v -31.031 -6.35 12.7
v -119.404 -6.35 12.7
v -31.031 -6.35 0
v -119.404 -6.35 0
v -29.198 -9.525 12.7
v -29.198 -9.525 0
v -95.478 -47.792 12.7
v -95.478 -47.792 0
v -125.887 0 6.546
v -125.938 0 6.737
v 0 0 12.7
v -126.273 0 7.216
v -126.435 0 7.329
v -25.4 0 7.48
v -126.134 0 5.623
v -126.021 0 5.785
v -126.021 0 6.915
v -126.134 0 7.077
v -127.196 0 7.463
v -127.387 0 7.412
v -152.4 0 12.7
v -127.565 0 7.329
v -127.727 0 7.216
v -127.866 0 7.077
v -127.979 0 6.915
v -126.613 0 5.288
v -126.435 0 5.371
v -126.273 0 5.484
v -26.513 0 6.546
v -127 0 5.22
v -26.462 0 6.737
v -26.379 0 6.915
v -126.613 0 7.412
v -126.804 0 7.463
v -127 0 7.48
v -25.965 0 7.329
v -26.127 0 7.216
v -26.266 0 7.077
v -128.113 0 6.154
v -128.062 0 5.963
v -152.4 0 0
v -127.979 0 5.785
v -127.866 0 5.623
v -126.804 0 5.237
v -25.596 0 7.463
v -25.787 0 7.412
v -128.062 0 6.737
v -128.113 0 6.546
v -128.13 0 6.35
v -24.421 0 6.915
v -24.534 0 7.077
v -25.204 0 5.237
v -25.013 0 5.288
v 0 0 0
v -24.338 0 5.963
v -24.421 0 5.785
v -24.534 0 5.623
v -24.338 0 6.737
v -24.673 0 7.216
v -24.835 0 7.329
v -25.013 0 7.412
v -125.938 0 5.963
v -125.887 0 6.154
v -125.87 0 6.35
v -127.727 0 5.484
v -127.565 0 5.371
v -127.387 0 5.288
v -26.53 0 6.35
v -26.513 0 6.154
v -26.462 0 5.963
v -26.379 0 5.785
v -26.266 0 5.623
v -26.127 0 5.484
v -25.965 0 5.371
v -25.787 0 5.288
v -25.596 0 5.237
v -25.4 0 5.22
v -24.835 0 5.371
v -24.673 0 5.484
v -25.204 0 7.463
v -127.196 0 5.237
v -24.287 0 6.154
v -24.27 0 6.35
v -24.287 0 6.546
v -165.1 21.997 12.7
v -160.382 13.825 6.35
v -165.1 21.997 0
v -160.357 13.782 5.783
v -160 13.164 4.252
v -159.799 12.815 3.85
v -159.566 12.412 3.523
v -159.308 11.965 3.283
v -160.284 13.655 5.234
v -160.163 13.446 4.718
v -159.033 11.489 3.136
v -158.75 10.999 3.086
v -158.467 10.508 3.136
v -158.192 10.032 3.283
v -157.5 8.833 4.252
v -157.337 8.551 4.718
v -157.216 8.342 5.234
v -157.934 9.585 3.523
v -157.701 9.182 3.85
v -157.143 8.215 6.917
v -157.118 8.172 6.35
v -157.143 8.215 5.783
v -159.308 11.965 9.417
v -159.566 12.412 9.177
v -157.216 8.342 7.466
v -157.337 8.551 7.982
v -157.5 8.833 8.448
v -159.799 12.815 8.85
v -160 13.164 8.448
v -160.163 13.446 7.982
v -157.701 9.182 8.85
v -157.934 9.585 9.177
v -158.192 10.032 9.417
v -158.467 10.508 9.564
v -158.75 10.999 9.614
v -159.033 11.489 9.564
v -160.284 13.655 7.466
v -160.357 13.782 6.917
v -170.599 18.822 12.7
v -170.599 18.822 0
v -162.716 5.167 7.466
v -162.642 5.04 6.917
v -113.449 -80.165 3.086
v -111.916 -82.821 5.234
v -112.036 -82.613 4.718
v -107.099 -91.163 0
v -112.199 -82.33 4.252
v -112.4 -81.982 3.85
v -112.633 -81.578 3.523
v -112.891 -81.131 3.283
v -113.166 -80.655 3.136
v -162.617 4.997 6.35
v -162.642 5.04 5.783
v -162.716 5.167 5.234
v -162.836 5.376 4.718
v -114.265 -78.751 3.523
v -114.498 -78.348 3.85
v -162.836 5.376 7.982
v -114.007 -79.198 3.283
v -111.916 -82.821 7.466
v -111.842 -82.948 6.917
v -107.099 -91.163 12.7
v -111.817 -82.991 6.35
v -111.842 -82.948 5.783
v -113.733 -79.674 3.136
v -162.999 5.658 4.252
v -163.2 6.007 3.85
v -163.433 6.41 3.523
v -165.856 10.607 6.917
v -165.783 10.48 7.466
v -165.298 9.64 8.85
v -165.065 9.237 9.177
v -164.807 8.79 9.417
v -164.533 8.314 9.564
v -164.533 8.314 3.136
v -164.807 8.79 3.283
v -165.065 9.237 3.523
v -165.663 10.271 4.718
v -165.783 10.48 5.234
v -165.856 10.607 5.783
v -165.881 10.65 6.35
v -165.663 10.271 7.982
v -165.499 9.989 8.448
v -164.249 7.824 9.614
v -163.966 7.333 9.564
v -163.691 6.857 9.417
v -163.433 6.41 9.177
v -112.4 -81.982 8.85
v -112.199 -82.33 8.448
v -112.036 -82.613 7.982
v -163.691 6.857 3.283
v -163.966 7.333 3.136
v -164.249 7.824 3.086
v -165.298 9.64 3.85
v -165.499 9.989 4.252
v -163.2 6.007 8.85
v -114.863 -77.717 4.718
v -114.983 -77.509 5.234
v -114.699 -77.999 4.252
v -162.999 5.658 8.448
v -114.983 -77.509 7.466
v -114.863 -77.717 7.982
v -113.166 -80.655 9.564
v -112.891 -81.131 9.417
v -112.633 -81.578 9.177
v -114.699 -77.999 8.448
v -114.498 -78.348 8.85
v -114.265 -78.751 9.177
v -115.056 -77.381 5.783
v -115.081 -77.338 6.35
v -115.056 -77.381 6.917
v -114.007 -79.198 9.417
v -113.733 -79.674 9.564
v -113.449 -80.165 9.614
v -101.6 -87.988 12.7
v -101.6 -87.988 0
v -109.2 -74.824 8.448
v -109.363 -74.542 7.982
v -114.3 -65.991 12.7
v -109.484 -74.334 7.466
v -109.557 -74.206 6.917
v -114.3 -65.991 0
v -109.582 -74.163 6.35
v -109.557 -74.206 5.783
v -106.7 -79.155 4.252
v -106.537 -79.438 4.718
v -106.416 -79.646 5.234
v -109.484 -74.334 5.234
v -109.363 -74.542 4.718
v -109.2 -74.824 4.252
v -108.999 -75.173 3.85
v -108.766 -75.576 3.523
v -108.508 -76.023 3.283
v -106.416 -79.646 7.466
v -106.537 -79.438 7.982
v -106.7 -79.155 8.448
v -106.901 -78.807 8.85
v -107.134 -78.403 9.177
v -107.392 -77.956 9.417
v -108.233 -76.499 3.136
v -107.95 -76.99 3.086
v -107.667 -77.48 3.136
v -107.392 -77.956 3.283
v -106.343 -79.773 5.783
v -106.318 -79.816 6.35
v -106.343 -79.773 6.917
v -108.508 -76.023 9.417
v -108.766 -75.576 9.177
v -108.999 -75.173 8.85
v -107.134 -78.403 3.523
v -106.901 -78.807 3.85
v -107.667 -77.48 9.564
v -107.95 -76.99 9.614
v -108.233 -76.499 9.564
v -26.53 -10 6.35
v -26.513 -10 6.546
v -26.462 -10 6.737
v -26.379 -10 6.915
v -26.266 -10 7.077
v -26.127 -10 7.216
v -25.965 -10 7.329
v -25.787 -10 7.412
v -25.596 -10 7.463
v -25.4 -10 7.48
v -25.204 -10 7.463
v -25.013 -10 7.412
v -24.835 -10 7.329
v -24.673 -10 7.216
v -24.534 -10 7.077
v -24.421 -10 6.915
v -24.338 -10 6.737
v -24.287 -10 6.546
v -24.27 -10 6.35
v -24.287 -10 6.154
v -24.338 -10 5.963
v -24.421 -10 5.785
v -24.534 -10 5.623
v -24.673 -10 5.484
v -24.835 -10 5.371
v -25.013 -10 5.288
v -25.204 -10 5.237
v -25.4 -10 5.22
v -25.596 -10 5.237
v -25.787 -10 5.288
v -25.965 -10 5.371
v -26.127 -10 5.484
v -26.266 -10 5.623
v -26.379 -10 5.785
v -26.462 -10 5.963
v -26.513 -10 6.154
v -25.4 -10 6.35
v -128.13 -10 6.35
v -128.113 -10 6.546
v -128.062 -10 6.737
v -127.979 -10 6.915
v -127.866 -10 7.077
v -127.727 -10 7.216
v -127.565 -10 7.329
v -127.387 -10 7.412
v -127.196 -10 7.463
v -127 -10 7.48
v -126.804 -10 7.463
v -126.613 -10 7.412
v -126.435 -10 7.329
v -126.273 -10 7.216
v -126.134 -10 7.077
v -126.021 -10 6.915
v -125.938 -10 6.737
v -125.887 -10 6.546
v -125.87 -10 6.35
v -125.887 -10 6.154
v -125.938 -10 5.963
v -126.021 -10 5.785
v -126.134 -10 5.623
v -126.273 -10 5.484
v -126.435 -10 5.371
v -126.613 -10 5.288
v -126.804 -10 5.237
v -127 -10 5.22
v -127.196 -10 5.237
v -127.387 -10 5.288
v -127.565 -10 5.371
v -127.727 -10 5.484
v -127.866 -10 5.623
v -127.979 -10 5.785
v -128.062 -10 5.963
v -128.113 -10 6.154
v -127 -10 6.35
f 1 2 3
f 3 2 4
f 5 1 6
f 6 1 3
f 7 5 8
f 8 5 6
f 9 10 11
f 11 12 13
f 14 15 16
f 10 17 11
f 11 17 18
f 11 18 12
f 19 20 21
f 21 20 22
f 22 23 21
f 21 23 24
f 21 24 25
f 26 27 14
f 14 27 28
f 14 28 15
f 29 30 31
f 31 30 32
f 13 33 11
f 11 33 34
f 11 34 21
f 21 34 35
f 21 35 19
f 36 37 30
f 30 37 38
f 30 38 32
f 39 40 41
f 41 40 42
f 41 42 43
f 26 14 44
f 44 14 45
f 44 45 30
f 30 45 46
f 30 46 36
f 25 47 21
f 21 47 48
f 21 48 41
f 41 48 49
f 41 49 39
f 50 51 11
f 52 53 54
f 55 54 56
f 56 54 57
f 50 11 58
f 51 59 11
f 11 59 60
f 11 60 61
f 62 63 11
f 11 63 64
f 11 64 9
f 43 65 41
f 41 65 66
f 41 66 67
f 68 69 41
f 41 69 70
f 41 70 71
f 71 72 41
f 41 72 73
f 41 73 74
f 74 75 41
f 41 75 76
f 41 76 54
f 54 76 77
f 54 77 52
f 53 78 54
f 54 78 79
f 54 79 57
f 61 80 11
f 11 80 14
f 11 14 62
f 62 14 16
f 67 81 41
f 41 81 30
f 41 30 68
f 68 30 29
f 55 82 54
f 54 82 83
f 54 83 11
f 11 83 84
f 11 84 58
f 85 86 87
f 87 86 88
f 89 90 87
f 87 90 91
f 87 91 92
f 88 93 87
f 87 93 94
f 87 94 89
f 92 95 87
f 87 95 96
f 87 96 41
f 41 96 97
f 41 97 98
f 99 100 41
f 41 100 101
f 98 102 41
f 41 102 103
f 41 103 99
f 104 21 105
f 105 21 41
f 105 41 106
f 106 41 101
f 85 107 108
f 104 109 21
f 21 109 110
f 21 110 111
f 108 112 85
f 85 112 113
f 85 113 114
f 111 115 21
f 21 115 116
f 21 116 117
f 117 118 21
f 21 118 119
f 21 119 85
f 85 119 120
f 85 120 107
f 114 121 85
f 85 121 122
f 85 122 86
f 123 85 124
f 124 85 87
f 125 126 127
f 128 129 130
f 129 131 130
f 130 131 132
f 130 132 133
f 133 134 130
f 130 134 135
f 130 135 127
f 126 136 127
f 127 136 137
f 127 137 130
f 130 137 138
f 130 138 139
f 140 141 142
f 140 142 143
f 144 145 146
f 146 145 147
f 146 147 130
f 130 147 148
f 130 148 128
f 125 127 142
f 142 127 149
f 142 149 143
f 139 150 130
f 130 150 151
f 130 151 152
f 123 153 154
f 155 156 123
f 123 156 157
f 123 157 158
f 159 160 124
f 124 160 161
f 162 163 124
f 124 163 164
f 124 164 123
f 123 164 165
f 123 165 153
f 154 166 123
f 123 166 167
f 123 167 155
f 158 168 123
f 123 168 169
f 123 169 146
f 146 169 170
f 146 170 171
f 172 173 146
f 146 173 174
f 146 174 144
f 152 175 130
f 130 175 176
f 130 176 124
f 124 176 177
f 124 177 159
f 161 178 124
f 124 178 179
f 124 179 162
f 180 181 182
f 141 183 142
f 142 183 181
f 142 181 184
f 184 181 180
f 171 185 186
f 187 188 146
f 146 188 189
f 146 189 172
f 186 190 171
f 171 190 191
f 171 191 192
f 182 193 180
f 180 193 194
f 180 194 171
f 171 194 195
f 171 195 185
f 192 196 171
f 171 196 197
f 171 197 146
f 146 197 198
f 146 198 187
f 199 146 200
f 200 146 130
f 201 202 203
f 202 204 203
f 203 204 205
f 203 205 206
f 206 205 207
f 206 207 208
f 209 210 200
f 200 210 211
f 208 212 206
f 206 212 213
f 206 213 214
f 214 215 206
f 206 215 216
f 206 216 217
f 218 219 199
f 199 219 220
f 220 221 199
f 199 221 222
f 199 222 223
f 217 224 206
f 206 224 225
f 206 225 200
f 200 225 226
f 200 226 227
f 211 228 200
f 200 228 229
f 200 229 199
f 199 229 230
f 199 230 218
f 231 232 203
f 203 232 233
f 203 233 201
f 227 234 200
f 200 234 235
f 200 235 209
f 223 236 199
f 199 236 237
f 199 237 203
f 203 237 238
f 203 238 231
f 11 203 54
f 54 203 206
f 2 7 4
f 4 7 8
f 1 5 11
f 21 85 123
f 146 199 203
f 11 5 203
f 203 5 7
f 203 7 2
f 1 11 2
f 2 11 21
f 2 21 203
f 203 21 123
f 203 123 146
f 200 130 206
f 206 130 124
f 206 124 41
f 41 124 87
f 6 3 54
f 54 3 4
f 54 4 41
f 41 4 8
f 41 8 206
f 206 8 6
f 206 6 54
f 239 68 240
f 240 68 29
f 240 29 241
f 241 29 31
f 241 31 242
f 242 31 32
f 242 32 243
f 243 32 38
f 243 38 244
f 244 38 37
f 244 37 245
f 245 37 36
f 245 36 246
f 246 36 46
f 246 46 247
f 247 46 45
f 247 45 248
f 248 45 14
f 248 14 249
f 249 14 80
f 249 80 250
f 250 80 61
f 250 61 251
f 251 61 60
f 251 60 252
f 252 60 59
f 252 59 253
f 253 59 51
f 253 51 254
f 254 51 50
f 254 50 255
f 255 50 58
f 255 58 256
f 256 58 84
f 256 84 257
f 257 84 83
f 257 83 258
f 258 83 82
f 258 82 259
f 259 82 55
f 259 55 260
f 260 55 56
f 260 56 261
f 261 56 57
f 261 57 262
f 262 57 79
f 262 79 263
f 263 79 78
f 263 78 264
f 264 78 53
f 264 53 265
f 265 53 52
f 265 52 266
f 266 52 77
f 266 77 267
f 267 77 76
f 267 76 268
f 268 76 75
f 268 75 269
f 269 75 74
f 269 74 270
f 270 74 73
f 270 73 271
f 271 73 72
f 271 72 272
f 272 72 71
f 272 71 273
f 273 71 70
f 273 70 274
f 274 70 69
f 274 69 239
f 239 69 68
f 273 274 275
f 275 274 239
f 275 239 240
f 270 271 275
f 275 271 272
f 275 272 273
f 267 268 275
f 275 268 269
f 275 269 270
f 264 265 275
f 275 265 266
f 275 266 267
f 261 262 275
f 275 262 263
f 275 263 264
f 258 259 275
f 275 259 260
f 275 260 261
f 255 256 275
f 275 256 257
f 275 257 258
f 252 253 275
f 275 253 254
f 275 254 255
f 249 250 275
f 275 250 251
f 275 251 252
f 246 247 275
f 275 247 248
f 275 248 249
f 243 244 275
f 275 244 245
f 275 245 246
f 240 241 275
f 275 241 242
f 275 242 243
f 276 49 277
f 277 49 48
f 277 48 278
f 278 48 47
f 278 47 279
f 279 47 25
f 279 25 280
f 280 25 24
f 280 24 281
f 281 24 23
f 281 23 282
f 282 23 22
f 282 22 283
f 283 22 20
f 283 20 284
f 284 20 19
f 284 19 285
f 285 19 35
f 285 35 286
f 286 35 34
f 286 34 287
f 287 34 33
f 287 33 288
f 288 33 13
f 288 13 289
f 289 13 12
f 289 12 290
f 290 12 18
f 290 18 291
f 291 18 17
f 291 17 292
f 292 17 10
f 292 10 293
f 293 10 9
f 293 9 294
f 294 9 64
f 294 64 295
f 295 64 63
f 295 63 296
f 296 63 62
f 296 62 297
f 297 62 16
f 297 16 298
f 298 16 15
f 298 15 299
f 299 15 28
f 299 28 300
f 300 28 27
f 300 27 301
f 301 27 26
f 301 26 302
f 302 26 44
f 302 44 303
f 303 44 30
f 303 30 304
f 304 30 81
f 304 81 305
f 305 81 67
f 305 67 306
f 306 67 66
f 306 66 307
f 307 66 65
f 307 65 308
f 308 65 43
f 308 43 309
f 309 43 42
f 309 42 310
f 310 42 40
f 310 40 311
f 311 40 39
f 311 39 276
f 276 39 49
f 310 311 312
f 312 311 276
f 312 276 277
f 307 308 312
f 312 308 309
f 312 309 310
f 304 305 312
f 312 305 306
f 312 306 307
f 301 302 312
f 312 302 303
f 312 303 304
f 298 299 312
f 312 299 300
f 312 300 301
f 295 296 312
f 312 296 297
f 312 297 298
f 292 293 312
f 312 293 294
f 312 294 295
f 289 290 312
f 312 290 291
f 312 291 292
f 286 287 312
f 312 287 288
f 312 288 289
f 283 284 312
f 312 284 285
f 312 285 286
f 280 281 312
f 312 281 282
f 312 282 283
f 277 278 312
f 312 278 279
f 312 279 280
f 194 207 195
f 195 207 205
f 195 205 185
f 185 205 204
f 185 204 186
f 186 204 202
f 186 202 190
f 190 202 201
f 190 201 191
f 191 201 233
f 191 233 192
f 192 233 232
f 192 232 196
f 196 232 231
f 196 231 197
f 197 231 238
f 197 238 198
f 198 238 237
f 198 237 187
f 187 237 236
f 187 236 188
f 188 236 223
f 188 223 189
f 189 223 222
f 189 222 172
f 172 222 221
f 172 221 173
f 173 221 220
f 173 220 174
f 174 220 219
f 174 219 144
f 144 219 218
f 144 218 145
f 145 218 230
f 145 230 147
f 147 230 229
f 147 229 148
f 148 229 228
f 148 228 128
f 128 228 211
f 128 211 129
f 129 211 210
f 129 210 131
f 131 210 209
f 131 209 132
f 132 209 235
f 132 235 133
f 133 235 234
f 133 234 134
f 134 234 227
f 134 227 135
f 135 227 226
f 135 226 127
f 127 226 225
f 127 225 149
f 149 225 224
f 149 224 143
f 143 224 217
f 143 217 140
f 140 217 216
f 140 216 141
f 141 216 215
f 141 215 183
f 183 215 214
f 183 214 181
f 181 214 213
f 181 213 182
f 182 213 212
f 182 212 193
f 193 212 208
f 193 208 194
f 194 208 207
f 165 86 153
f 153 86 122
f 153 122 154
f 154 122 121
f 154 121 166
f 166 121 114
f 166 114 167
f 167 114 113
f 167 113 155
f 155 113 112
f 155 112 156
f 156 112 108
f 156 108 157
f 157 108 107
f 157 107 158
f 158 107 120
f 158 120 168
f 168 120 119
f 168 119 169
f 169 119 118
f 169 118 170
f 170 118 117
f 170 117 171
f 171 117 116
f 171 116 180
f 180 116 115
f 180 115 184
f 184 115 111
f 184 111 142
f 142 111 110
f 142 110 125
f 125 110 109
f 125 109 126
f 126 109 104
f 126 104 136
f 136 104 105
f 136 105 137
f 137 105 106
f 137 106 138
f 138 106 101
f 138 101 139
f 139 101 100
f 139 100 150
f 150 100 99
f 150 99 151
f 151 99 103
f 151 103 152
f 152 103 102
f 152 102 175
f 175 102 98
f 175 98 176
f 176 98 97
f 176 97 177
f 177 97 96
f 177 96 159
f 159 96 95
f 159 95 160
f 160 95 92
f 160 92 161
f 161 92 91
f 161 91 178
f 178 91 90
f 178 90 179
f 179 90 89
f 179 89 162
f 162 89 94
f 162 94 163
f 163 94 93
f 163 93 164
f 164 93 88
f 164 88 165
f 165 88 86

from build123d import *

# Parameters (mm, degrees)
BOSS_EXTRUDE1_DEPTH = 12.7
SKETCH2_R           = 1.1303
CUT_EXTRUDE1_DEPTH  = 10
SKETCH3_R           = 3.2639
CUT_EXTRUDE2_DEPTH  = 10


with BuildPart() as part:
    # Sketch1 → Boss-Extrude1 (new body)
    # profile 1 of 4: a face of its own
    with BuildSketch(Plane.XY):
        Polygon((-152.4, 0), (0, 0), (-114.3, -65.991135768), align=None)
        Polygon((-119.404432116, -6.35), (-31.030871047, -6.35), (-29.197783942, -9.525), (-95.477954744, -47.791874454), align=None, mode=Mode.SUBTRACT)
    # profile 2 of 4: a face of its own
    with BuildSketch(Plane.XY):
        Polygon((-165.1, 21.997045256), (-170.599261314, 18.822045256), (-157.899261314, -3.175), (-152.4, 0), align=None)
    # profile 3 of 4: a face of its own
    with BuildSketch(Plane.XY):
        Polygon((-157.899261314, -3.175), (-119.799261314, -69.166135768), (-114.3, -65.991135768), (-152.4, 0), align=None)
    # profile 4 of 4: a face of its own
    with BuildSketch(Plane.XY):
        Polygon((-107.099261314, -91.163181024), (-119.799261314, -69.166135768), (-114.3, -65.991135768), (-101.6, -87.988181024), align=None)
    extrude(amount=BOSS_EXTRUDE1_DEPTH)

    # Sketch2 → Cut-Extrude1 (cut)
    with BuildSketch(Plane(origin=(0, 0, 0), x_dir=(1, 0, 0), z_dir=(0, 1, 0))):
        with Locations(Location((-127, -6.35, 0), (0, 0, 180))):
            Circle(SKETCH2_R)
        with Locations(Location((-25.4, -6.35, 0), (0, 0, 180))):
            Circle(SKETCH2_R)
    extrude(amount=-CUT_EXTRUDE1_DEPTH, mode=Mode.SUBTRACT)

    # Sketch3 → Cut-Extrude2 (cut)
    with BuildSketch(Plane(origin=(-114.3, -65.991135768, 0), x_dir=(0, 0, -1), z_dir=(0.8660254037844342, 0.5000000000000079, 0))):
        with Locations(Location((-6.35, 88.9, 0), (0, 0, 90))):
            Circle(SKETCH3_R)
        with Locations(Location((-6.35, -12.7, 0), (0, 0, 90))):
            Circle(SKETCH3_R)
    extrude(amount=-CUT_EXTRUDE2_DEPTH, mode=Mode.SUBTRACT)


solid = part.part
